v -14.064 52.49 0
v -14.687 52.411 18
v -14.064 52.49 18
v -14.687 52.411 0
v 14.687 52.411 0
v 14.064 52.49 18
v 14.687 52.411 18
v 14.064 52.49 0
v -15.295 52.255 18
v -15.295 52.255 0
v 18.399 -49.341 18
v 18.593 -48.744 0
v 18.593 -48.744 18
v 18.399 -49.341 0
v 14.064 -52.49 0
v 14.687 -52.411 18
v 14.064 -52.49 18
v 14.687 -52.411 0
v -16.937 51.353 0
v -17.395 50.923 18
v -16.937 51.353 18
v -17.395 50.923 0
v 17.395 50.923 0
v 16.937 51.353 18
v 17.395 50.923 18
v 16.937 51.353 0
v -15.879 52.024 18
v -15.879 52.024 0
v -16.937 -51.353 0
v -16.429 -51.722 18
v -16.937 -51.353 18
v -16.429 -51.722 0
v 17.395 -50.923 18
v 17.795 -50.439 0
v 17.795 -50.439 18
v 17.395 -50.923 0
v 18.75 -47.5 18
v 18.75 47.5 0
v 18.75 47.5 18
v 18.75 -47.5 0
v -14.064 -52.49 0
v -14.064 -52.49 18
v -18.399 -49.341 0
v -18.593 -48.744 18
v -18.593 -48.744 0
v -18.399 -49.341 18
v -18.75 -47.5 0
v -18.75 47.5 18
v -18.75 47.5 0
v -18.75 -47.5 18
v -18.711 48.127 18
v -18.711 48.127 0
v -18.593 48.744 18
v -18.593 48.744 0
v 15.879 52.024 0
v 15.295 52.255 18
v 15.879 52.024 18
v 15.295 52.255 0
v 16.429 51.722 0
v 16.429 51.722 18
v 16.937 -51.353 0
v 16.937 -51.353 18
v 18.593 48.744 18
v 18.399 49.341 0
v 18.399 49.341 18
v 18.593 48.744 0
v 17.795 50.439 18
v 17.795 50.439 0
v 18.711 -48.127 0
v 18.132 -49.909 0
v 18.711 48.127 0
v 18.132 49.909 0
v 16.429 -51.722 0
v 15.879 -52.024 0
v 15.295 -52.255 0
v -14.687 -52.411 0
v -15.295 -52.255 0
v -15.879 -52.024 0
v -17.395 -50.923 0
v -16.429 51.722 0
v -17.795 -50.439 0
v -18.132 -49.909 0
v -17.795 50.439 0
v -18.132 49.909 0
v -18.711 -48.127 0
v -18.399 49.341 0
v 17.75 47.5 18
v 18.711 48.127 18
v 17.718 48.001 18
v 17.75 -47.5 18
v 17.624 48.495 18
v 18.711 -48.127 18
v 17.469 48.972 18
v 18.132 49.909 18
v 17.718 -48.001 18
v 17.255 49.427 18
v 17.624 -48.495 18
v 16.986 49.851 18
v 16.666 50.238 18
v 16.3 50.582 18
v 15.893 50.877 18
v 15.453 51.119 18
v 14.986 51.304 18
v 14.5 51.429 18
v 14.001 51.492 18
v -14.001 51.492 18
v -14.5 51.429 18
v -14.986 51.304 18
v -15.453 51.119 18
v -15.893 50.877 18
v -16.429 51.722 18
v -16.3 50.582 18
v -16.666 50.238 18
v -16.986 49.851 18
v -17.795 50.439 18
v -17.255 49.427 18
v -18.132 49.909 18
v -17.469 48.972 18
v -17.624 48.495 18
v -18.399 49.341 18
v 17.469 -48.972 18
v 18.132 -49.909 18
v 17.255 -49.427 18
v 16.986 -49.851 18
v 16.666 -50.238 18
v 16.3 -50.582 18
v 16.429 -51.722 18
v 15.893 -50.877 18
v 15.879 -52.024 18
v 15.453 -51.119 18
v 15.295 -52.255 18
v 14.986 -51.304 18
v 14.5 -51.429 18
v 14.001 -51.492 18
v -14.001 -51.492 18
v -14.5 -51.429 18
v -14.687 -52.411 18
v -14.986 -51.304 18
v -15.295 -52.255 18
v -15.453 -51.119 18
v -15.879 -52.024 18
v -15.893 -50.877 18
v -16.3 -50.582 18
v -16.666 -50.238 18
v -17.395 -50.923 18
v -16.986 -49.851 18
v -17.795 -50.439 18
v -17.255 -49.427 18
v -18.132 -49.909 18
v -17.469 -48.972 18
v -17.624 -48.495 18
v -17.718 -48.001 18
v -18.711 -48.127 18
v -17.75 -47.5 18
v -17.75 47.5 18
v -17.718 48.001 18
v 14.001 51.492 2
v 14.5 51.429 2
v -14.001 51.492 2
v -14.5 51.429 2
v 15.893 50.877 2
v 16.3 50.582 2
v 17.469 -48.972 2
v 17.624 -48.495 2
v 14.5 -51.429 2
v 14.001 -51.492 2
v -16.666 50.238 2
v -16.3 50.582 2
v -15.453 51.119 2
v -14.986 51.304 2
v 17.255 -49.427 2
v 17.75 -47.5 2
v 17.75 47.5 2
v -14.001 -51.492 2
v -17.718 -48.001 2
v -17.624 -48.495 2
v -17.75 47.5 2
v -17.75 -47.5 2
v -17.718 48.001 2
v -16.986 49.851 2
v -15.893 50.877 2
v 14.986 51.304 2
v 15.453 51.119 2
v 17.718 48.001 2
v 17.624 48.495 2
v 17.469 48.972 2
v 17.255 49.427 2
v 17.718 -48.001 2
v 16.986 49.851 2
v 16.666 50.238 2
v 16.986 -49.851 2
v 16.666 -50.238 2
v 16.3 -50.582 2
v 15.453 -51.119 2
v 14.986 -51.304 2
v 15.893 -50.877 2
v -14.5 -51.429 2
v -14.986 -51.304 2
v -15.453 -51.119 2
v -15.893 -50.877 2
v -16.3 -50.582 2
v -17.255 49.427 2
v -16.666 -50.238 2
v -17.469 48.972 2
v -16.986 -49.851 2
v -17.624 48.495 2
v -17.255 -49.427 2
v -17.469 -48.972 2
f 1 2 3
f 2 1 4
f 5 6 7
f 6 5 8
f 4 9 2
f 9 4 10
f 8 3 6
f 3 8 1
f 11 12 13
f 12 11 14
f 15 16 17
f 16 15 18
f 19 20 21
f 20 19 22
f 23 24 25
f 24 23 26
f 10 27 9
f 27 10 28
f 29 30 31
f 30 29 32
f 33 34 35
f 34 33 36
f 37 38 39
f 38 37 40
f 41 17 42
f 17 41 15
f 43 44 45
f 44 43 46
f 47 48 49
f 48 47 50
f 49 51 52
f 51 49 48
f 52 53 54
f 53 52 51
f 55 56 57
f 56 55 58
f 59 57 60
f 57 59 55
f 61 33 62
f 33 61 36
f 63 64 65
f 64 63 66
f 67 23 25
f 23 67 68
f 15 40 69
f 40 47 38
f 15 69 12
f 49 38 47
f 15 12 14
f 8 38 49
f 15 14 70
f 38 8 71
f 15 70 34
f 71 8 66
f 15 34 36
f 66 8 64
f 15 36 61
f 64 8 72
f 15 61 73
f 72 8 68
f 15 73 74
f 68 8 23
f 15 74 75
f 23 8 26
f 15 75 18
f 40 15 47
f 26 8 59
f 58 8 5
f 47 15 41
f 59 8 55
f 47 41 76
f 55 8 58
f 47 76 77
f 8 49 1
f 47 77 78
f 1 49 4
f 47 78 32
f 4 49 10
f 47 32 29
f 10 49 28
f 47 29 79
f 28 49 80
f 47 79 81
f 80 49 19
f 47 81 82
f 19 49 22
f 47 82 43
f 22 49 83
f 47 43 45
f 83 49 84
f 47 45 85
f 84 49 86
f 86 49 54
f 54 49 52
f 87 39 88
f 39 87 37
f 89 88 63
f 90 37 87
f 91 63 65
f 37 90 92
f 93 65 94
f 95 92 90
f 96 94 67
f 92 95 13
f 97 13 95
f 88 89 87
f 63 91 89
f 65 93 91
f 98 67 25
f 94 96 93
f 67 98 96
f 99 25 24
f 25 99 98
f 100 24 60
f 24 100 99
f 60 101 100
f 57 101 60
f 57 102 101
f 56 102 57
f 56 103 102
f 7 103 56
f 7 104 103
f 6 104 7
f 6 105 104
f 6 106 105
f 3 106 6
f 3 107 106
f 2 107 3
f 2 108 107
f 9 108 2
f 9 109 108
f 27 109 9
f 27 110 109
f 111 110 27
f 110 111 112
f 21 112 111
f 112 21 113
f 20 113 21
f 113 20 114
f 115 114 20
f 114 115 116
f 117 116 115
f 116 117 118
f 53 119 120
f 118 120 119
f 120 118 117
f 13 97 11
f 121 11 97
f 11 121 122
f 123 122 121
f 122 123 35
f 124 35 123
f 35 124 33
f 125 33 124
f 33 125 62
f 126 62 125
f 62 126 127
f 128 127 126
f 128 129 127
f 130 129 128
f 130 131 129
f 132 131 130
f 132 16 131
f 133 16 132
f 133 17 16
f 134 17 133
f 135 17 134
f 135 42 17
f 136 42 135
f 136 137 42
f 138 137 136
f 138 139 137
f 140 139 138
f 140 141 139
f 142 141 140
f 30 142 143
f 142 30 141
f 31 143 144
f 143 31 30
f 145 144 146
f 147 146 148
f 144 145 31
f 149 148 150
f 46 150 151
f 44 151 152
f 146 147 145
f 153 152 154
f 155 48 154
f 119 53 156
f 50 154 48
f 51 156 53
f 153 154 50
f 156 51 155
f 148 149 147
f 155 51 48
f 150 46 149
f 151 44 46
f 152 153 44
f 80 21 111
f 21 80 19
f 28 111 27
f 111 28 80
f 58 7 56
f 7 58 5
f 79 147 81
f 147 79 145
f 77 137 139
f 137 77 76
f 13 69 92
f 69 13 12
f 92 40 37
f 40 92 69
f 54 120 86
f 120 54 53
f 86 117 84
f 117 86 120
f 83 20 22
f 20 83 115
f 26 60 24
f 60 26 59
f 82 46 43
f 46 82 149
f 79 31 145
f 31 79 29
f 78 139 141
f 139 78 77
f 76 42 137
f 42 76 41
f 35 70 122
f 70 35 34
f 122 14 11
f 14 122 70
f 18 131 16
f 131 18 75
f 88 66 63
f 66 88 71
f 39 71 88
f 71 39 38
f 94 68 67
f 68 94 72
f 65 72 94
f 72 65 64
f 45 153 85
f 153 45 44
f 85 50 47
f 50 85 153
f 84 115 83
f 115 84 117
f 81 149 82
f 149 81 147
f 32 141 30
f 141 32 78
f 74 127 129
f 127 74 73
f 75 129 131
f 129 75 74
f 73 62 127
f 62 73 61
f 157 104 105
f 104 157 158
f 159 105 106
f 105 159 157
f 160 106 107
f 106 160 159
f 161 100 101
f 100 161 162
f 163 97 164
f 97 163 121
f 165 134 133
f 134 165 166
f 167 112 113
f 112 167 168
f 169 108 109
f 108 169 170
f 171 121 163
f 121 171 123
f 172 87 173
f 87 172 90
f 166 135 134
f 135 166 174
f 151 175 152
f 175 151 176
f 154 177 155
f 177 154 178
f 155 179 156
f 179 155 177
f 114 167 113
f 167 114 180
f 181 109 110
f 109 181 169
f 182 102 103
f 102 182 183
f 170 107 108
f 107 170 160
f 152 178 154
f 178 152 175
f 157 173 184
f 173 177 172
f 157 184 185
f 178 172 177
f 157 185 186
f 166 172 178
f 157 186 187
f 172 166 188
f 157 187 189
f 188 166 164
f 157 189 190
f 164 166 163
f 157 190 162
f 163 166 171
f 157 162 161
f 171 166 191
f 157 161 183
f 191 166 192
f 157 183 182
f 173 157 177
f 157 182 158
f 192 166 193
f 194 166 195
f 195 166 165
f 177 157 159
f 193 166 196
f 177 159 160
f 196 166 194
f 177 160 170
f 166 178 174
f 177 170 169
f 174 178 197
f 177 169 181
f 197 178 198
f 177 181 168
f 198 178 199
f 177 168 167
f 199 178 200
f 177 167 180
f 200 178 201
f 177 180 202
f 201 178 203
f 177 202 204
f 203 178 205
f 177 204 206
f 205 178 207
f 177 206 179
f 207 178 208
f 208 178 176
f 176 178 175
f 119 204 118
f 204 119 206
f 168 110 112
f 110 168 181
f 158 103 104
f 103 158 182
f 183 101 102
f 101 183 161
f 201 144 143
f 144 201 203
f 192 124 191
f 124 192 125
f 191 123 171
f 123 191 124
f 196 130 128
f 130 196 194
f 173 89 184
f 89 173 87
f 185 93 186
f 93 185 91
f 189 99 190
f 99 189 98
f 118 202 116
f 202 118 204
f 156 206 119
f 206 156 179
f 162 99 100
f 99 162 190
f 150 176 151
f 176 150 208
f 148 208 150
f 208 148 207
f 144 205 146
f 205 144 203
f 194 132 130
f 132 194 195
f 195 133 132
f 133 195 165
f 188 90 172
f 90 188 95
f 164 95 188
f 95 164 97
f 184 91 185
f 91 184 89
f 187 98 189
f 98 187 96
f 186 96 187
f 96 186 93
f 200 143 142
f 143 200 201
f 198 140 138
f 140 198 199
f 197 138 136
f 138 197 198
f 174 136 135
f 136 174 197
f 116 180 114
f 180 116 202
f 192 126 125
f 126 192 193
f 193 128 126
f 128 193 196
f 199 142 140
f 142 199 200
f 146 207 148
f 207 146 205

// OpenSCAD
$fn = 50;


difference() {
	union() {
		hull() {
			translate(v = [-13.7500000000, 47.5000000000, 0]) {
				cylinder(h = 18, r = 5);
			}
			translate(v = [13.7500000000, 47.5000000000, 0]) {
				cylinder(h = 18, r = 5);
			}
			translate(v = [-13.7500000000, -47.5000000000, 0]) {
				cylinder(h = 18, r = 5);
			}
			translate(v = [13.7500000000, -47.5000000000, 0]) {
				cylinder(h = 18, r = 5);
			}
		}
	}
	union() {
		translate(v = [0, 0, 2]) {
			hull() {
				translate(v = [-13.7500000000, 47.5000000000, 0]) {
					cylinder(h = 16, r = 4);
				}
				translate(v = [13.7500000000, 47.5000000000, 0]) {
					cylinder(h = 16, r = 4);
				}
				translate(v = [-13.7500000000, -47.5000000000, 0]) {
					cylinder(h = 16, r = 4);
				}
				translate(v = [13.7500000000, -47.5000000000, 0]) {
					cylinder(h = 16, r = 4);
				}
			}
		}
	}
}
